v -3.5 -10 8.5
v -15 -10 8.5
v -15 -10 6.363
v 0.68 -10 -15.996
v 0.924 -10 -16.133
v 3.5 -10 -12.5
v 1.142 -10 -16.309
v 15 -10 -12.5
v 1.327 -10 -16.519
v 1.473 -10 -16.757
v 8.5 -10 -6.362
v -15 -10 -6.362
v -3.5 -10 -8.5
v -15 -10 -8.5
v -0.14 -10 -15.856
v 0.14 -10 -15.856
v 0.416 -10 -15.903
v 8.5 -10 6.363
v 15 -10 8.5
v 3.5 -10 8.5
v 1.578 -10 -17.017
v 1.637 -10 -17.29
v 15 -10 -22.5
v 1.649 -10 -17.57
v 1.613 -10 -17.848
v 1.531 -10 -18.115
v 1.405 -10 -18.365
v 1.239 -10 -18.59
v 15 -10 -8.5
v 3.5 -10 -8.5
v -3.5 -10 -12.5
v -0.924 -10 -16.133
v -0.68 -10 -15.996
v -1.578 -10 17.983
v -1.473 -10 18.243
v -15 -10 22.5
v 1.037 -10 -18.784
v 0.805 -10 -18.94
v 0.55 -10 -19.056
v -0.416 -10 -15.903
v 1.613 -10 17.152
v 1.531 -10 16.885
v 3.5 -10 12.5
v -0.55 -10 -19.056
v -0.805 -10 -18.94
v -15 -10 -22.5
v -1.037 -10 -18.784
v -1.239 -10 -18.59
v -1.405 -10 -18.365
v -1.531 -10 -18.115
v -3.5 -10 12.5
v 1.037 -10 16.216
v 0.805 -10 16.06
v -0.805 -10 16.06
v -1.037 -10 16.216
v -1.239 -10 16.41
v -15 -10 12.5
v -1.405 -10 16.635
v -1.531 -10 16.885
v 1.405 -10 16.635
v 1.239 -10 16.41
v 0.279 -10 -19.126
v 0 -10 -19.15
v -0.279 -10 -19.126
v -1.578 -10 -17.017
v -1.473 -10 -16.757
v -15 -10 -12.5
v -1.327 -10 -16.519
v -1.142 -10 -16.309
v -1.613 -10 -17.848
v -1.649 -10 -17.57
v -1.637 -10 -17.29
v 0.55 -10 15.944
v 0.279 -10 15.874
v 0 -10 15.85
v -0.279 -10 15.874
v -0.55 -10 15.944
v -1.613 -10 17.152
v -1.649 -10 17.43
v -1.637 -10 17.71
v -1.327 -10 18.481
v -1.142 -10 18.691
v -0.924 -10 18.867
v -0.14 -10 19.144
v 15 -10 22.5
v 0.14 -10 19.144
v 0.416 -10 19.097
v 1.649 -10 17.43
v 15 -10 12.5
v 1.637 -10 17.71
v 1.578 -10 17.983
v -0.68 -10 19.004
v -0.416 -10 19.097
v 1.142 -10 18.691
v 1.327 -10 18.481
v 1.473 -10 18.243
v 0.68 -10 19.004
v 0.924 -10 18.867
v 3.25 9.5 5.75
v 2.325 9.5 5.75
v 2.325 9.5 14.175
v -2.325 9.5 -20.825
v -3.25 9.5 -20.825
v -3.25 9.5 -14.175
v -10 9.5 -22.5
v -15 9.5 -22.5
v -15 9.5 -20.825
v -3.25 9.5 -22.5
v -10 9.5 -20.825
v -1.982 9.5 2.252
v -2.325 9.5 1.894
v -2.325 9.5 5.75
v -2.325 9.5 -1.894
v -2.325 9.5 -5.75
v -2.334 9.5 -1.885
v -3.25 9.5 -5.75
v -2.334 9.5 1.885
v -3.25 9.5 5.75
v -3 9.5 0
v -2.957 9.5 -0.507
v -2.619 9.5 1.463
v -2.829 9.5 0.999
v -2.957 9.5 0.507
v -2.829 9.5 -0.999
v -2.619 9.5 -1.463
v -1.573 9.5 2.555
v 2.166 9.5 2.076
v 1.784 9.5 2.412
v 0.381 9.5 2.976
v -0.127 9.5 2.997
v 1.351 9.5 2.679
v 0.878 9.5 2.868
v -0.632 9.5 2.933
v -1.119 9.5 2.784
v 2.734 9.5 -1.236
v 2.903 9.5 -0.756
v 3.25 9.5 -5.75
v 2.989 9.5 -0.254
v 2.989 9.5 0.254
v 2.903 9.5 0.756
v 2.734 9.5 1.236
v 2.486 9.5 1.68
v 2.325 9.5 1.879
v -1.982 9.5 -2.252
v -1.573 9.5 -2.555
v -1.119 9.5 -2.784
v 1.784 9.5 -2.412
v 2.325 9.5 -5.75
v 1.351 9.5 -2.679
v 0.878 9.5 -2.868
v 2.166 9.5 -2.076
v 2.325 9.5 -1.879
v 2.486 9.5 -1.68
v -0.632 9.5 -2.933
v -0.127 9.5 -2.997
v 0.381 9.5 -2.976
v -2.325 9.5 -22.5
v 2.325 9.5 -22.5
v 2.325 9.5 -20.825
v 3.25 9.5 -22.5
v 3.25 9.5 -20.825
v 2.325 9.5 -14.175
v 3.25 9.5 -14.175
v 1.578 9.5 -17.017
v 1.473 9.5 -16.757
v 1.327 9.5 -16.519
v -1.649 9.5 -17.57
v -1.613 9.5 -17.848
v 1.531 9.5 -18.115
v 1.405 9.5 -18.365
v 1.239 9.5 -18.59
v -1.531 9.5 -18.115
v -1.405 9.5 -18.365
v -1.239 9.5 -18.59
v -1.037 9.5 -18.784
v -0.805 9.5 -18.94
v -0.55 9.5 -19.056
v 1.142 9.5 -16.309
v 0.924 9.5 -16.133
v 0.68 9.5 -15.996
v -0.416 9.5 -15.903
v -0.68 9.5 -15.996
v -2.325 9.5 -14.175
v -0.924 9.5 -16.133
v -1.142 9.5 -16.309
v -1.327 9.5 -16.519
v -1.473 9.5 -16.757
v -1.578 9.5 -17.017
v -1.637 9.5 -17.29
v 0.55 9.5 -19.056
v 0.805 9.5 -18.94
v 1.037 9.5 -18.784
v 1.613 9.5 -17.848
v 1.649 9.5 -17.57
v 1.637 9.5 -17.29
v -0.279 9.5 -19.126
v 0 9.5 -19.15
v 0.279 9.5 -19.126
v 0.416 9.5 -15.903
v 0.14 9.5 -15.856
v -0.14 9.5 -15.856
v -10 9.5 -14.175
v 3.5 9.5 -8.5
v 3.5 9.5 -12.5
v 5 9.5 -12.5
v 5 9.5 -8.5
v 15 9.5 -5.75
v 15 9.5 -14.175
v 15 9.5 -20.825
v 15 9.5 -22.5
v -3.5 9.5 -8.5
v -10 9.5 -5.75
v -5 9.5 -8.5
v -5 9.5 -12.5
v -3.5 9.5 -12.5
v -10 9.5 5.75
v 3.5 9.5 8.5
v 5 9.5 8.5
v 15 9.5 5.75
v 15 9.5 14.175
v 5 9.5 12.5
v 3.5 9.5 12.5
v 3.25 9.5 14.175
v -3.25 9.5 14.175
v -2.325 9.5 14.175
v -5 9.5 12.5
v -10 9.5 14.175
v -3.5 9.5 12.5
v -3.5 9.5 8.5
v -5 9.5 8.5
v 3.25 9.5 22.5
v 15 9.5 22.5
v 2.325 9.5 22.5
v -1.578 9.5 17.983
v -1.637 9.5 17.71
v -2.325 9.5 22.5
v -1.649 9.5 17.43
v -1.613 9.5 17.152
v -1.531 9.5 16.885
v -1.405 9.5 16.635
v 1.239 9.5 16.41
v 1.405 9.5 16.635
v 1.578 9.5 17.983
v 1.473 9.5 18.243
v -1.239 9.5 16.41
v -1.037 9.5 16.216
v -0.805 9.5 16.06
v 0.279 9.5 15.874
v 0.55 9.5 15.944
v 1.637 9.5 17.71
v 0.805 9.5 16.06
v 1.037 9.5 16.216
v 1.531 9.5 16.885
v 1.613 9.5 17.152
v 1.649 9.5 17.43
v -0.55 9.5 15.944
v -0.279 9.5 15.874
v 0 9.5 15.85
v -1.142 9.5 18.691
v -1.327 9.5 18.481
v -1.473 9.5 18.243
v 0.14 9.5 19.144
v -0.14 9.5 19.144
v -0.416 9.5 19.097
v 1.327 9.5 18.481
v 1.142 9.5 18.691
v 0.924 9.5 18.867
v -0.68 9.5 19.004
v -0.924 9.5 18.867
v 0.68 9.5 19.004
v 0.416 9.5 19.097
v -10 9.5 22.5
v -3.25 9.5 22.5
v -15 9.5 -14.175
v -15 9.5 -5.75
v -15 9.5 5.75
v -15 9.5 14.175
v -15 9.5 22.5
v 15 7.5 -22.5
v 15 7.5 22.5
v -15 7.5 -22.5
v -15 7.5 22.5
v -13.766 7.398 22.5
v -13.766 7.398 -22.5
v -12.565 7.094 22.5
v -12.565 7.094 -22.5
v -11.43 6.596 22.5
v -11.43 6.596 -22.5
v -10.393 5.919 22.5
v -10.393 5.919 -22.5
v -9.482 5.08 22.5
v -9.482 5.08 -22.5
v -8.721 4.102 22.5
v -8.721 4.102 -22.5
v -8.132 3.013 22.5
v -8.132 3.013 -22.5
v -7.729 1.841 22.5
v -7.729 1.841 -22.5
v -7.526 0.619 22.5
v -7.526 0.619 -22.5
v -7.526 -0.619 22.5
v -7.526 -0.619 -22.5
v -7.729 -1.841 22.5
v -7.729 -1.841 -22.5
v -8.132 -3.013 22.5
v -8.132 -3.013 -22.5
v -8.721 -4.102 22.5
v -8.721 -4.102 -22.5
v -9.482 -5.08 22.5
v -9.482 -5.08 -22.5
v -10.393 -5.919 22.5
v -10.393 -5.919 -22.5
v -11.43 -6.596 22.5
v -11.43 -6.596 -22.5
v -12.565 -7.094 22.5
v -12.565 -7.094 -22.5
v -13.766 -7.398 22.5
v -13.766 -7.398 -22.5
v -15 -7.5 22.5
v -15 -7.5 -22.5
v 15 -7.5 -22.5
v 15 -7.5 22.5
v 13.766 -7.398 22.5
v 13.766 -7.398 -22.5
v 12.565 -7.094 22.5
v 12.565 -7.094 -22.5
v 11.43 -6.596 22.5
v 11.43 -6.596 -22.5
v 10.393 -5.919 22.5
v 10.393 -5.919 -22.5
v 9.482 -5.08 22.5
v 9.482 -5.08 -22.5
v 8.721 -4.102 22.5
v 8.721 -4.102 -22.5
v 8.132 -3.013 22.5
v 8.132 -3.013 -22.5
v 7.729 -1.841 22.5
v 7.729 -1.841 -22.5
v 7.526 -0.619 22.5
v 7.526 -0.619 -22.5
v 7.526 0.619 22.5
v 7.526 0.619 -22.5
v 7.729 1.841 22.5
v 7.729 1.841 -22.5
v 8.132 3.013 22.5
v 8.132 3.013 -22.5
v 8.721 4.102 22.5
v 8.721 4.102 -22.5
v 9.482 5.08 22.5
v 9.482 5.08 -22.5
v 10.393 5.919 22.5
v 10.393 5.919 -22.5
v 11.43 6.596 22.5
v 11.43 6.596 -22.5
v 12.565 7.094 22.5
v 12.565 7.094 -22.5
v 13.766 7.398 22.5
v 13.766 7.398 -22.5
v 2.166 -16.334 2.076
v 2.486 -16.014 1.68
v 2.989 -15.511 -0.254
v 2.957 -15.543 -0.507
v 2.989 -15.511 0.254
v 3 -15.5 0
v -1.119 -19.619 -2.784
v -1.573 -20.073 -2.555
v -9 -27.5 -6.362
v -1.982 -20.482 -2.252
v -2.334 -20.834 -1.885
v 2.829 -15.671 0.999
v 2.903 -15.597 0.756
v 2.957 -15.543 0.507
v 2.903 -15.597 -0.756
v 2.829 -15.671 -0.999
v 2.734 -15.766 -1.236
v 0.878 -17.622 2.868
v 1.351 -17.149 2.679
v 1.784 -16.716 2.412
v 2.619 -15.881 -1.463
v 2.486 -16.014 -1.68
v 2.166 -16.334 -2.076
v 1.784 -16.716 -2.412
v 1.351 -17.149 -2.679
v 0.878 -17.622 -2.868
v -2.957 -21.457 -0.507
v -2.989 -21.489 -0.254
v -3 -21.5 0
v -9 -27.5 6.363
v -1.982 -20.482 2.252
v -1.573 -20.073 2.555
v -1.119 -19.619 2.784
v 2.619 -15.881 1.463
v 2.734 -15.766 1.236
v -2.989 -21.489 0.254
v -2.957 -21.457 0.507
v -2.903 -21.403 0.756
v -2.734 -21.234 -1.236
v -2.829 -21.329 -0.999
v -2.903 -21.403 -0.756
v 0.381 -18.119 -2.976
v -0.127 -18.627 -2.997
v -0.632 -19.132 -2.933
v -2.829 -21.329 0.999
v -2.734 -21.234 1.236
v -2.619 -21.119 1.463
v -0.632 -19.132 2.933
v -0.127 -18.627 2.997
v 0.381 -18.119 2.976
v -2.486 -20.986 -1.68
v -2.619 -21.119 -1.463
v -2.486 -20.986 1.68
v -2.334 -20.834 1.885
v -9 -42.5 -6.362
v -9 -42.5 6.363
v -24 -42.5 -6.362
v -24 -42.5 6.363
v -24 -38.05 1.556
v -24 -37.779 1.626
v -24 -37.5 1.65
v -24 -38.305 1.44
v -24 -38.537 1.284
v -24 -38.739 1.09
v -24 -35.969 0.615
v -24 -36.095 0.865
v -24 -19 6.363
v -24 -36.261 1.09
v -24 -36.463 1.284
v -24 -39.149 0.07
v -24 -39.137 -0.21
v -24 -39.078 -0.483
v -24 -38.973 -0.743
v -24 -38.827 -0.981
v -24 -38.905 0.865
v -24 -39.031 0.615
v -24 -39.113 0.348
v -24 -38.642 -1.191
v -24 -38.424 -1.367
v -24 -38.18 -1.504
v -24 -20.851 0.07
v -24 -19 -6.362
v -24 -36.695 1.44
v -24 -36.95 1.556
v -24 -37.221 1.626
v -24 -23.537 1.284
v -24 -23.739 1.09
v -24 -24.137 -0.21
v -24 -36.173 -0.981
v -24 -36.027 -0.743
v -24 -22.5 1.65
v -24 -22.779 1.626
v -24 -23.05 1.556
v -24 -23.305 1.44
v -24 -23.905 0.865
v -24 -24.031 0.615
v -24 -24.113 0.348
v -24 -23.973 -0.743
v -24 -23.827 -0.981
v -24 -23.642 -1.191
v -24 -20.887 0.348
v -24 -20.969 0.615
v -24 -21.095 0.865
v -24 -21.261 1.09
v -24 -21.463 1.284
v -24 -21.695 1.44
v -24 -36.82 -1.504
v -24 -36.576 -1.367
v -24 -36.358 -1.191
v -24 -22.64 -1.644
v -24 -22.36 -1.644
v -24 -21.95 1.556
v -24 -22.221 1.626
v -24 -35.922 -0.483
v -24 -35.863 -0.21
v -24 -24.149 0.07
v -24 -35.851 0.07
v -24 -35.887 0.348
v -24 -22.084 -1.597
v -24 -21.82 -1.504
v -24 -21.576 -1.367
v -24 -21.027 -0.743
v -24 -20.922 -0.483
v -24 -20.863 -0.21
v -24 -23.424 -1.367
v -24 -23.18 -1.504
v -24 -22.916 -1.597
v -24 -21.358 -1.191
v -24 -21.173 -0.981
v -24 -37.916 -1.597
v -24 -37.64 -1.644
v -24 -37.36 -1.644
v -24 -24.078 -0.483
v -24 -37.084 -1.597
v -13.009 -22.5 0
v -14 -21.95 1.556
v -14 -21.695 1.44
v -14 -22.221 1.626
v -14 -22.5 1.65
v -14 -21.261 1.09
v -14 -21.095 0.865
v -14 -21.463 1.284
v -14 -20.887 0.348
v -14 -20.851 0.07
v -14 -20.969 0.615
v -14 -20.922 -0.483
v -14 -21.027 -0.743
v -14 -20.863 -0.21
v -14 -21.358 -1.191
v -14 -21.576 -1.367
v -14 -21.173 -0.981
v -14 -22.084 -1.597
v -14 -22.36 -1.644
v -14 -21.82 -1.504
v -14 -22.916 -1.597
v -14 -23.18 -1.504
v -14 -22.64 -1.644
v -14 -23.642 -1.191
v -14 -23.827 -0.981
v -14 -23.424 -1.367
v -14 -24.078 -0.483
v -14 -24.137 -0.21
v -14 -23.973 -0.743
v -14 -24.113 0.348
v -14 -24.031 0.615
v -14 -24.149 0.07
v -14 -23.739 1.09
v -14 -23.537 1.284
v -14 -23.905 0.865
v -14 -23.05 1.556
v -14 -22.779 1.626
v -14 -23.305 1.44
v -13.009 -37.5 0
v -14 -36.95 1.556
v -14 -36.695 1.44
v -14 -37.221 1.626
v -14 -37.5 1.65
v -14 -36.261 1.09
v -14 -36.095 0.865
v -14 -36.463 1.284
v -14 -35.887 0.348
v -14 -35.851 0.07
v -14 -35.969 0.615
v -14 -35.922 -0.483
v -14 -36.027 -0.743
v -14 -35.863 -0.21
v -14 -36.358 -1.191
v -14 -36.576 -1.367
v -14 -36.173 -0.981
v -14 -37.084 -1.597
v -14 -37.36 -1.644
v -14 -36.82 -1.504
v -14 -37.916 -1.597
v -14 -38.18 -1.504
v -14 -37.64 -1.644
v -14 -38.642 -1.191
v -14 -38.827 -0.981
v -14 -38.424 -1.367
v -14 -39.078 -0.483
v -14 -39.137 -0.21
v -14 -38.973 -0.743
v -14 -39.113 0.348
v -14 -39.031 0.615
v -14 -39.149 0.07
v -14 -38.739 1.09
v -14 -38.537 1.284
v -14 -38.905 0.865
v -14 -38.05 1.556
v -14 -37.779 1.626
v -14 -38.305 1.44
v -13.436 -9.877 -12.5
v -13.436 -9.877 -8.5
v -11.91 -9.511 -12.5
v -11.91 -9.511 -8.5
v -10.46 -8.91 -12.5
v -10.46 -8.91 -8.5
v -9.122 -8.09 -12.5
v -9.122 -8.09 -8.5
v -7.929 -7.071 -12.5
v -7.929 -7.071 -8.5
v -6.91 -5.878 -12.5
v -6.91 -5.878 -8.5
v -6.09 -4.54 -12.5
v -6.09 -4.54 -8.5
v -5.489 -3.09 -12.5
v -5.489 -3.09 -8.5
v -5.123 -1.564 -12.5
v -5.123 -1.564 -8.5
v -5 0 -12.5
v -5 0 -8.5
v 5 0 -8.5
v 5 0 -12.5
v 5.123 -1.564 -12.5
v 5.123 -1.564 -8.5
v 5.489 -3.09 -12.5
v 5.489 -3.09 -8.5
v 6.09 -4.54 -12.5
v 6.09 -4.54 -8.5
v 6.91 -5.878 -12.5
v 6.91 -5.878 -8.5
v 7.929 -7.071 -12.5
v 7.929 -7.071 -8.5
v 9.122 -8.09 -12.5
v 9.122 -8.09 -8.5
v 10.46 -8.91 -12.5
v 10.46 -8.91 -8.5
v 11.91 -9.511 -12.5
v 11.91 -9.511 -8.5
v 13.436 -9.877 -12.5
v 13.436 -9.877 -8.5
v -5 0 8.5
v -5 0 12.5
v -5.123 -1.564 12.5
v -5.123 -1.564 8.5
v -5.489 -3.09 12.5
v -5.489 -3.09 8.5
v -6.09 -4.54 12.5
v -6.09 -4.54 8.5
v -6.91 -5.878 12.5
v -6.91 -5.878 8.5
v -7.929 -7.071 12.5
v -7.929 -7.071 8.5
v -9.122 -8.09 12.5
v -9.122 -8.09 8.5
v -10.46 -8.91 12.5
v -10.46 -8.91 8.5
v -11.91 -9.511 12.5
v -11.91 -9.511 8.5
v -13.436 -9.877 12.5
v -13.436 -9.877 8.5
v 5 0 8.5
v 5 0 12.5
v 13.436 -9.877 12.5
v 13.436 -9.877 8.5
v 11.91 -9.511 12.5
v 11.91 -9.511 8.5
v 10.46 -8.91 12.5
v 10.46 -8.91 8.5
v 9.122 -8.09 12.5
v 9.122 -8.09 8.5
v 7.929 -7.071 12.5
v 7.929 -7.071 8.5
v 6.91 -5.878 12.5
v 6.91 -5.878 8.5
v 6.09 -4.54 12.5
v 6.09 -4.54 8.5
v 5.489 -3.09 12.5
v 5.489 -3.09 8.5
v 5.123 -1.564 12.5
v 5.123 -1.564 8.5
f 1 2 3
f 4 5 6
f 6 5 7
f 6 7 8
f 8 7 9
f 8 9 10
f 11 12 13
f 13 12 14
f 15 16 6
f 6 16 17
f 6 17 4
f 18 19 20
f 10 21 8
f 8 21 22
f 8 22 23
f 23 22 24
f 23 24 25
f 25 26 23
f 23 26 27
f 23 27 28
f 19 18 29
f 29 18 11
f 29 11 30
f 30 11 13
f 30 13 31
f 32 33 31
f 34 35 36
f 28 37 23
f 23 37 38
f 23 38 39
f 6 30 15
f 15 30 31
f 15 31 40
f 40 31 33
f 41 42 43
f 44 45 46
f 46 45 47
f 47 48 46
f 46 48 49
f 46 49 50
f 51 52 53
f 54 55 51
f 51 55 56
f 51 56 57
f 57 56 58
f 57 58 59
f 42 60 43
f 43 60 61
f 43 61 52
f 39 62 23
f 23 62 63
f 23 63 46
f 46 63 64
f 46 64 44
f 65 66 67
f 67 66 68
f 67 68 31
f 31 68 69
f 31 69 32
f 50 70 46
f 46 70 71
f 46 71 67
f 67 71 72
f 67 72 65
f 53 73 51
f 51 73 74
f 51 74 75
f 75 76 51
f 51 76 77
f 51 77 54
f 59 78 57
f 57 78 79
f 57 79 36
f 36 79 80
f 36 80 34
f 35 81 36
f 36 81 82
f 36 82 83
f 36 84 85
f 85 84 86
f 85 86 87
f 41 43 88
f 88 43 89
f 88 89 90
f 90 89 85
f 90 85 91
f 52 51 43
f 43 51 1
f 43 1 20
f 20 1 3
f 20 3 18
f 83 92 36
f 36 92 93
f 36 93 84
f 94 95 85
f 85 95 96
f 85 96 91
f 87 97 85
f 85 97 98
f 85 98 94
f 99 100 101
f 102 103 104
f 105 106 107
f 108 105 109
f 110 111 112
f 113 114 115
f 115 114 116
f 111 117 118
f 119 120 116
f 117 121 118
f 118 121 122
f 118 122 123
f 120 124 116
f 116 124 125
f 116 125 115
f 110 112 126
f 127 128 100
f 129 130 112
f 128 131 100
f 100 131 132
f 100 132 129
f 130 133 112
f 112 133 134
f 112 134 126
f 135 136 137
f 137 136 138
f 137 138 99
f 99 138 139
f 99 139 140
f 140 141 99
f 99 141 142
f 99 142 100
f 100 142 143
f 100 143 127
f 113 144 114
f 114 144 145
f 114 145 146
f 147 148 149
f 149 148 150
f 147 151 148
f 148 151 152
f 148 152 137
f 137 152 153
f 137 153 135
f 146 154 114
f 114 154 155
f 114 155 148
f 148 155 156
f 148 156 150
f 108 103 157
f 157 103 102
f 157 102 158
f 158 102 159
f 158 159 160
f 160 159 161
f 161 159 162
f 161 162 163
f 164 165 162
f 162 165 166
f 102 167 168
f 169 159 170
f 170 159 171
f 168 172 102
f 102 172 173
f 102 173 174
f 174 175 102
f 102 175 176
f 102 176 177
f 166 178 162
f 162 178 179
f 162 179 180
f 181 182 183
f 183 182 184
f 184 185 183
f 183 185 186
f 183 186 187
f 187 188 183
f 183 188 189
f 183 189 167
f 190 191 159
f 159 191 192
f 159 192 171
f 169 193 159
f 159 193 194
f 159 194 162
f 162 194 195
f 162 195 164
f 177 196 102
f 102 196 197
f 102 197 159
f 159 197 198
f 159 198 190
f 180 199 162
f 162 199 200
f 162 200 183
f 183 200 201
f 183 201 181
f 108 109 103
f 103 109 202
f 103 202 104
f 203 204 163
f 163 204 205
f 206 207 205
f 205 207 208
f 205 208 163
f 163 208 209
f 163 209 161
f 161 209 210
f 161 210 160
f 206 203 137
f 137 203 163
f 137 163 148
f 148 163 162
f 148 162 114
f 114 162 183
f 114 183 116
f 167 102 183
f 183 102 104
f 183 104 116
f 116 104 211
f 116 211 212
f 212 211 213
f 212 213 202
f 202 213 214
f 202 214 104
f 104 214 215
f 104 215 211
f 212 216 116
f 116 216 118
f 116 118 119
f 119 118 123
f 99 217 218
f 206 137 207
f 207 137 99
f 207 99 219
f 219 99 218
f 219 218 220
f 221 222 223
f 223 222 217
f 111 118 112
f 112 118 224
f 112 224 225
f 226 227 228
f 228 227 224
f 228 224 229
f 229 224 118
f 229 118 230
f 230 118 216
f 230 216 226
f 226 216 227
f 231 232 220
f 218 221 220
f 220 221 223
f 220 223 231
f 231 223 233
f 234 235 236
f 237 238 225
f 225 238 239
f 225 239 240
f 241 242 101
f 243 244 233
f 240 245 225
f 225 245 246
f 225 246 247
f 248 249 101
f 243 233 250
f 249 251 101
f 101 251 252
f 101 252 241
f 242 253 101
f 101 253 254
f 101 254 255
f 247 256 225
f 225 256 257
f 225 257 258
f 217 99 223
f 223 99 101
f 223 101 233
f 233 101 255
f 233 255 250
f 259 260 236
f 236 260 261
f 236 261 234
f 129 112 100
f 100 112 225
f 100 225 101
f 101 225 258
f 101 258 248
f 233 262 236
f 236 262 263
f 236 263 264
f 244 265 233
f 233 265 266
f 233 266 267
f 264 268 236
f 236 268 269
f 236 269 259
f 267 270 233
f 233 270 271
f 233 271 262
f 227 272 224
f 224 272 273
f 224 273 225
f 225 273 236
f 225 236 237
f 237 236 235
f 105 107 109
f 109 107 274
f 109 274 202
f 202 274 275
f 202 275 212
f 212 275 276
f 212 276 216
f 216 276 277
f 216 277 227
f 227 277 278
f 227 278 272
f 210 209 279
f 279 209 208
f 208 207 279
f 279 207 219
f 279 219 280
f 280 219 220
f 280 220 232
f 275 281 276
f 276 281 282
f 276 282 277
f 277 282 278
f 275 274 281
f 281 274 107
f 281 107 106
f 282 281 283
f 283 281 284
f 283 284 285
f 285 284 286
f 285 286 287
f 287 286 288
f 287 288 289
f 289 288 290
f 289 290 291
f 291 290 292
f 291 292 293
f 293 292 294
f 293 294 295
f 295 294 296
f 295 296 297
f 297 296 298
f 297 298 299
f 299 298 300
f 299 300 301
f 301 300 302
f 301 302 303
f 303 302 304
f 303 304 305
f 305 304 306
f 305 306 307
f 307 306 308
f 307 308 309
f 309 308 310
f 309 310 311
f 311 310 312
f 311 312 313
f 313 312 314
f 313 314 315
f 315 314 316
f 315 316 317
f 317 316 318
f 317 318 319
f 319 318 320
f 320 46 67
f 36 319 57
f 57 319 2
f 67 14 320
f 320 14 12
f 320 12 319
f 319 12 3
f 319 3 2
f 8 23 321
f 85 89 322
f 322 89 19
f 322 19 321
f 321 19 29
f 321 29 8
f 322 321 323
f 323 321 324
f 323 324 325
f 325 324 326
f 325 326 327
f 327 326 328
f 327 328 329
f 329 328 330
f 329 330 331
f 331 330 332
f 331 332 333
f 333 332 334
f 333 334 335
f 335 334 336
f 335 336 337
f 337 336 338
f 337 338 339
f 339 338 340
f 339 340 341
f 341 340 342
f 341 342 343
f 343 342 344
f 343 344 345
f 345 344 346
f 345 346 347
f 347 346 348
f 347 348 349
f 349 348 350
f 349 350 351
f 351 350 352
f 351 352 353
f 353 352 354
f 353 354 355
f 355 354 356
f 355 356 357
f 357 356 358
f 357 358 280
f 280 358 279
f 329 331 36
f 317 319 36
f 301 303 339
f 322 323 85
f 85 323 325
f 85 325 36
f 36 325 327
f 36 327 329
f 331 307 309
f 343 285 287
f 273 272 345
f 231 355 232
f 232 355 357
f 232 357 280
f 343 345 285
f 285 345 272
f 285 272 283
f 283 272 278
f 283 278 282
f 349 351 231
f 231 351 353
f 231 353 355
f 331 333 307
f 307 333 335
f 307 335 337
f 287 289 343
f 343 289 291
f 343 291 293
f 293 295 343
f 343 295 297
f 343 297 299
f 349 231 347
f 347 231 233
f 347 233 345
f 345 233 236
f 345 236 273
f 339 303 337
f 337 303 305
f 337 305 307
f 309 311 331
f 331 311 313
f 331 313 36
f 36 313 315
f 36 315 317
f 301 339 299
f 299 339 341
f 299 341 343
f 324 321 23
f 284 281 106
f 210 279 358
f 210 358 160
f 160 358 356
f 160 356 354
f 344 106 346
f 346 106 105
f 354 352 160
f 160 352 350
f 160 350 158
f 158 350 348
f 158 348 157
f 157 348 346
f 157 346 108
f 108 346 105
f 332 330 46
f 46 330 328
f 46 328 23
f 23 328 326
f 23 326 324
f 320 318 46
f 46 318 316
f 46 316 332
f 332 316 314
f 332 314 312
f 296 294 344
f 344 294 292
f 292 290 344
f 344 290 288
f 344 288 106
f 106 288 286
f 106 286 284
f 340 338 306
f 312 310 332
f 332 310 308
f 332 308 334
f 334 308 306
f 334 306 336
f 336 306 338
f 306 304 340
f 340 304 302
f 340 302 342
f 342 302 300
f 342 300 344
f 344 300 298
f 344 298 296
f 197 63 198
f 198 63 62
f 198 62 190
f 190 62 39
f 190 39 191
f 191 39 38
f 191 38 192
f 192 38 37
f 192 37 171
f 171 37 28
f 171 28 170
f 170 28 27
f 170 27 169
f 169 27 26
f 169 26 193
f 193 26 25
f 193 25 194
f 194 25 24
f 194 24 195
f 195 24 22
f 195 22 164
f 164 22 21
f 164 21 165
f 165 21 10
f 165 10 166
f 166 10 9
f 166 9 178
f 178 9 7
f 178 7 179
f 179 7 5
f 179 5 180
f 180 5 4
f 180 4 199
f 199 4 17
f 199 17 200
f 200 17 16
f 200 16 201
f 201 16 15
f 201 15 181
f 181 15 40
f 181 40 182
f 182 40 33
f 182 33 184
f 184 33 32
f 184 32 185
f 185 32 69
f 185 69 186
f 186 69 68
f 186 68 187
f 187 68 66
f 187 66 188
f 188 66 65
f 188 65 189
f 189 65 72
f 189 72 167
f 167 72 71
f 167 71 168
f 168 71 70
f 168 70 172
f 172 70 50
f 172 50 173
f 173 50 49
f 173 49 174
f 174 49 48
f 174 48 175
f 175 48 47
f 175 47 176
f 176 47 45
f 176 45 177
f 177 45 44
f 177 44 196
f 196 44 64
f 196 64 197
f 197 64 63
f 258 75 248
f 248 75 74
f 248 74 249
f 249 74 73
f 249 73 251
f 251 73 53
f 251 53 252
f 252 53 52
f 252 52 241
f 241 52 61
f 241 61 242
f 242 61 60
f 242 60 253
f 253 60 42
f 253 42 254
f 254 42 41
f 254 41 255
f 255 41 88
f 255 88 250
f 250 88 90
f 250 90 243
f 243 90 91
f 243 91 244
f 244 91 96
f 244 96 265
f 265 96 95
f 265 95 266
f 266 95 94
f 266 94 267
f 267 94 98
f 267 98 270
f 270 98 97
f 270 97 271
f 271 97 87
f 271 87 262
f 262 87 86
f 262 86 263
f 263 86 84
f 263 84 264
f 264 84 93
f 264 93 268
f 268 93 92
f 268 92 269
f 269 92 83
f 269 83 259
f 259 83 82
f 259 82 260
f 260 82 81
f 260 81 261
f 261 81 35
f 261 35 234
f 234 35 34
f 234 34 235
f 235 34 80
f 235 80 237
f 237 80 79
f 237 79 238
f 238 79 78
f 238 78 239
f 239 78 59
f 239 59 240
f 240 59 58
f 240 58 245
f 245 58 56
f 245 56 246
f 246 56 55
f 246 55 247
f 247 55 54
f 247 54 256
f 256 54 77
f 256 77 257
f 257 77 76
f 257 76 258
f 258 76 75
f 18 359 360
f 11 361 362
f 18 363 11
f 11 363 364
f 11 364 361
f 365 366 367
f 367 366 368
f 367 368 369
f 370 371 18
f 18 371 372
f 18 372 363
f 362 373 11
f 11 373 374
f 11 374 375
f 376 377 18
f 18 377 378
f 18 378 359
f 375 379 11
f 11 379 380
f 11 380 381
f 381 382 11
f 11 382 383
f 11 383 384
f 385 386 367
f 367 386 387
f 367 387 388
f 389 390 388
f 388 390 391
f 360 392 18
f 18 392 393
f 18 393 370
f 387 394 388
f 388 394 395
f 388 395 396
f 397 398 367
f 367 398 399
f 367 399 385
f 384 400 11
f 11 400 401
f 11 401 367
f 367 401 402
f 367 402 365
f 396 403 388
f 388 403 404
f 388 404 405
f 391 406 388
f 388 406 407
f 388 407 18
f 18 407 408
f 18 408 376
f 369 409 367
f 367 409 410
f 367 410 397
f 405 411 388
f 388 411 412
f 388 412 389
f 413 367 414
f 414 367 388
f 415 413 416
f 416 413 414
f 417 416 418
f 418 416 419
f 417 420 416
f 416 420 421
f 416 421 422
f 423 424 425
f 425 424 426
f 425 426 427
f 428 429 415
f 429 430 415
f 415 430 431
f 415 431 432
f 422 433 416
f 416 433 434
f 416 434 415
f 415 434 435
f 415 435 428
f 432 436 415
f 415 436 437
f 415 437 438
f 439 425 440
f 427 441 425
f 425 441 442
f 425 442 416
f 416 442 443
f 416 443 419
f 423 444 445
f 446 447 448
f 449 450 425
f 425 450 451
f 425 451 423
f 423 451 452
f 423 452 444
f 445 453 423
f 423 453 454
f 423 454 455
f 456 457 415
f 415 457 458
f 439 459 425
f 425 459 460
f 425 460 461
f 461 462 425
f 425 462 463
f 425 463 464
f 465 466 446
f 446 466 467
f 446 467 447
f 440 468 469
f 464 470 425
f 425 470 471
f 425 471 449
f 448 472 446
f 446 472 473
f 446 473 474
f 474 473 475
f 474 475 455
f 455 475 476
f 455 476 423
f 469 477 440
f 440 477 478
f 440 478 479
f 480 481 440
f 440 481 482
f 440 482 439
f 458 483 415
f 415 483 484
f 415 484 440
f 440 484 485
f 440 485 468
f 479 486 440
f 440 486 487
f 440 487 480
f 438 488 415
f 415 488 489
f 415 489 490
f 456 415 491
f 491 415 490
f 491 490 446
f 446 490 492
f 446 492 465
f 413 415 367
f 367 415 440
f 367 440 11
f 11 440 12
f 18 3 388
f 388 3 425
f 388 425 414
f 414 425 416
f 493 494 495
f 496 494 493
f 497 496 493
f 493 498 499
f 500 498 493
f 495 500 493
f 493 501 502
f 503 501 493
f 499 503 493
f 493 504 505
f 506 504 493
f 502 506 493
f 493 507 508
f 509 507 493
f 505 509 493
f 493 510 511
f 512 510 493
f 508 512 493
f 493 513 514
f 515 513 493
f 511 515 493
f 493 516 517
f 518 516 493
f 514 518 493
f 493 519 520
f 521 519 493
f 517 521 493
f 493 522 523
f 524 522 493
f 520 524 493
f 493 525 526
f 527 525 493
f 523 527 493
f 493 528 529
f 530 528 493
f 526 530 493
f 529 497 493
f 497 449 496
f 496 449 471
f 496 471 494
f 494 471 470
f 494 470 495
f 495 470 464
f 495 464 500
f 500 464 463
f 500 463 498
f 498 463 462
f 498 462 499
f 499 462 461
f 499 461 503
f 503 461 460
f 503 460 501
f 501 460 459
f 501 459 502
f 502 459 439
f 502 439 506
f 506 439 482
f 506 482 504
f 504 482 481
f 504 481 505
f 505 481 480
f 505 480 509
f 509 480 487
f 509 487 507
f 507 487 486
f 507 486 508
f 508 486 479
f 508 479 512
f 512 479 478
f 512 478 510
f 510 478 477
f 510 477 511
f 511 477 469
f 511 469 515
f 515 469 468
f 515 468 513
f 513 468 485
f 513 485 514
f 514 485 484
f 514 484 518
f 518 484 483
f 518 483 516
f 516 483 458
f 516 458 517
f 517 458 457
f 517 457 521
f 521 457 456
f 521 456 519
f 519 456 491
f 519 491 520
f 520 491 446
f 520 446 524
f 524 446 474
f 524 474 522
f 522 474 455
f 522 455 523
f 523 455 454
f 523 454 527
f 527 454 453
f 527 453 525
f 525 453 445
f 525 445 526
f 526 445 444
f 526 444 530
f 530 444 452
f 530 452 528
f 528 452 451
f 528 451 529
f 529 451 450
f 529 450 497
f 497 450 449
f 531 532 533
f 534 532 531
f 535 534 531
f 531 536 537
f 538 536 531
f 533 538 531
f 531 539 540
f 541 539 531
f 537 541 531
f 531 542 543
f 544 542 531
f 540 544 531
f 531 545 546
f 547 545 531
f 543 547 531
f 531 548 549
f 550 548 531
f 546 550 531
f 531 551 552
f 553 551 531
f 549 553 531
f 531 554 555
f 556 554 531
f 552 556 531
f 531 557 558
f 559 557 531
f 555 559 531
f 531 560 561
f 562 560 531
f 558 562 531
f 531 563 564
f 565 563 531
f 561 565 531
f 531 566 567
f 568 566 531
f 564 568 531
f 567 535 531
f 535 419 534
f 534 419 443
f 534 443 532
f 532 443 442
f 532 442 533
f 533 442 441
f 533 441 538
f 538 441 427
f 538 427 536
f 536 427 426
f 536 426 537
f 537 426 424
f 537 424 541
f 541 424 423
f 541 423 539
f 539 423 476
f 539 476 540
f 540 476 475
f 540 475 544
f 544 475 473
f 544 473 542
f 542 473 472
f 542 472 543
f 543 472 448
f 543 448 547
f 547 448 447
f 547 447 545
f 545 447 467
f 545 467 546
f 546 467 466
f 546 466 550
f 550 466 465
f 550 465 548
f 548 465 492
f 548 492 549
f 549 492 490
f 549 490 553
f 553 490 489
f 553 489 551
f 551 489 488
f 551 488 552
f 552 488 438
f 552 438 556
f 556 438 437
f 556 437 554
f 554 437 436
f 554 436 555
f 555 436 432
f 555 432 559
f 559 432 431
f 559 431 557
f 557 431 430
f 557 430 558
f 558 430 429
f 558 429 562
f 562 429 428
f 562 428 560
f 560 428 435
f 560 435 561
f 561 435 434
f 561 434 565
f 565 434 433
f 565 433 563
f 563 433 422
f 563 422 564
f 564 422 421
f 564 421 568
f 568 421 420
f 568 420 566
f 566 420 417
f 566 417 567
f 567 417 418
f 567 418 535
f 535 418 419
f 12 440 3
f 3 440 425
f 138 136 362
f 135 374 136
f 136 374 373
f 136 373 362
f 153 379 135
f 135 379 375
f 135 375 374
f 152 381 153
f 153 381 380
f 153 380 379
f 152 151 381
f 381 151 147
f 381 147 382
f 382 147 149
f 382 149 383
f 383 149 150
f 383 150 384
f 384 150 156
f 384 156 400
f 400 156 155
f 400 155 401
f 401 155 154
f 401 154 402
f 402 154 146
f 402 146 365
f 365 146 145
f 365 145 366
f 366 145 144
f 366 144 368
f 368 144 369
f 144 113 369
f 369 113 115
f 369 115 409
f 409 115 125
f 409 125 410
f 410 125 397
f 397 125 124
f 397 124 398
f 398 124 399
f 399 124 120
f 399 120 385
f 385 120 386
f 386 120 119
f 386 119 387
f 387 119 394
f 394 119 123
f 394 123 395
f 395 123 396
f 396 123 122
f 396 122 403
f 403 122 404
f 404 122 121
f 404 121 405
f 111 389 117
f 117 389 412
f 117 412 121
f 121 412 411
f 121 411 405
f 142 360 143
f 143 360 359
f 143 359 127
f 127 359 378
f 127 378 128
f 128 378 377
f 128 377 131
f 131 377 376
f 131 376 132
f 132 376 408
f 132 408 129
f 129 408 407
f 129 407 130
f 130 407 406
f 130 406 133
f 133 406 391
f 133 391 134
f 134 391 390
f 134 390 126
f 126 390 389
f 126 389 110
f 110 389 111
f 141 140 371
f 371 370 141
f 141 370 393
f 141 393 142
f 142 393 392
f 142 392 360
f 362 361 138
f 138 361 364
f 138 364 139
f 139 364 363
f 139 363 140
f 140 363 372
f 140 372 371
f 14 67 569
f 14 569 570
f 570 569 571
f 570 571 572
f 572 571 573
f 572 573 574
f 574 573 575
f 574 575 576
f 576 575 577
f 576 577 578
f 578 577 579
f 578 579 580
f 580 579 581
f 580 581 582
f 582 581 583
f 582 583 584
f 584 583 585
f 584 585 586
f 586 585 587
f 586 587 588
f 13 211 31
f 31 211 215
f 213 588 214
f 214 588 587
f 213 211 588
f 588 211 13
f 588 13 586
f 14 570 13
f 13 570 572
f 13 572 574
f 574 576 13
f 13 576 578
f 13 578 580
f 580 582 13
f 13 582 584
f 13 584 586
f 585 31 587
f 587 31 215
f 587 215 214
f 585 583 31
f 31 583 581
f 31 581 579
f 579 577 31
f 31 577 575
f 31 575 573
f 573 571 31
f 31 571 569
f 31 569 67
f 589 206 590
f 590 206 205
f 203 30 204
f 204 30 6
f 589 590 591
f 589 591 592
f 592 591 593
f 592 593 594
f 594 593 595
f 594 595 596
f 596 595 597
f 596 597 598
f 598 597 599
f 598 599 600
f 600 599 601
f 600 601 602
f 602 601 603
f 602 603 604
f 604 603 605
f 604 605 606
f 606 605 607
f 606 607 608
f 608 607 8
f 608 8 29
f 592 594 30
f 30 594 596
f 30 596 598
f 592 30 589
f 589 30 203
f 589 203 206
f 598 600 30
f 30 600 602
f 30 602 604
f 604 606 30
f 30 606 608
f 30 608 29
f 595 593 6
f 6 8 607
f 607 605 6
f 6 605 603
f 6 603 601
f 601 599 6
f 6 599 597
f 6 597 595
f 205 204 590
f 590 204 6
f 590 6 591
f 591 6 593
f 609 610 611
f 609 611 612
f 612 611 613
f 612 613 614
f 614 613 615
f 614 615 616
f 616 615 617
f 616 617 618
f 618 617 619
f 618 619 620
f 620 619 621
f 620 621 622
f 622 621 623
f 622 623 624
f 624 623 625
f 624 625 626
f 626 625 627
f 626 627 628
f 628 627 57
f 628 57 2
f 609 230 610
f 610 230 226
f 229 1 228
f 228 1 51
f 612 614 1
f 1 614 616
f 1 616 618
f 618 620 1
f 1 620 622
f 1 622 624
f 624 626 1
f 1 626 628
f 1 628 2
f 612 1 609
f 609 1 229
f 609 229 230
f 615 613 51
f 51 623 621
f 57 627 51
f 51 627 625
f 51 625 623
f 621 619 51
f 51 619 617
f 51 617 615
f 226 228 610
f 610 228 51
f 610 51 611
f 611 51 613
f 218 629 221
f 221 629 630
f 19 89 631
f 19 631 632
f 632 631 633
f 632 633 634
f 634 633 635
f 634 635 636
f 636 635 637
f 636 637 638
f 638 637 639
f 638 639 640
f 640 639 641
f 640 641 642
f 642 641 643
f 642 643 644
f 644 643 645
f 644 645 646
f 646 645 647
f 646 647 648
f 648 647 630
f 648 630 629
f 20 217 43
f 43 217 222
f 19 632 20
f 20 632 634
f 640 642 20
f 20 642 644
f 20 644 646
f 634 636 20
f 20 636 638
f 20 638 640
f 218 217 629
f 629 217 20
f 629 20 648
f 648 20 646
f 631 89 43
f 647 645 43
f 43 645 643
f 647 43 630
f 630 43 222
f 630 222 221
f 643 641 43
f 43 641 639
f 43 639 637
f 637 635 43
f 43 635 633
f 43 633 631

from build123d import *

# Parameters (mm, degrees)
BOSS_EXTRUDE1_DEPTH       = 22.5
M4X0_7_TAPPED_HOLE2_D     = 3.3
BOSS_EXTRUDE3_DEPTH       = 6.3625
M4X0_7_TAPPED_HOLE1_D     = 3.3
M4X0_7_TAPPED_HOLE1_DEPTH = 10
M4X0_7_TAPPED_HOLE1_TIP   = 0.991420021
CUT_EXTRUDE2_DEPTH        = 85
SKETCH2_R                 = 3
CUT_EXTRUDE1_DEPTH        = 50
CUT_EXTRUDE3_START        = -10
CUT_EXTRUDE3_DEPTH        = 4


with BuildPart() as part:
    # Sketch1 → Boss-Extrude1 (new body, symmetric)
    with BuildSketch(Plane.XY):
        with BuildLine():
            Line((-15, 7.5), (-15, 9.5))
            Line((-15, 9.5), (15, 9.5))
            Line((15, 9.5), (15, 7.5))
            ThreePointArc((15, 7.5), (7.5, 0), (15, -7.5))
            Line((15, -7.5), (15, -10))
            Line((15, -10), (-15, -10))
            Line((-15, -10), (-15, -7.5))
            ThreePointArc((-15, -7.5), (-7.5, 0), (-15, 7.5))
        make_face()
    extrude(amount=BOSS_EXTRUDE1_DEPTH, both=True)

    # M4x0.7 Tapped Hole2 (through all)
    with Locations(Plane(origin=(0, -10, 0), x_dir=(-1, 0, 0), z_dir=(0, -1, 0))):
        with Locations((0, -17.5), (0, 17.5)):
            Hole(M4X0_7_TAPPED_HOLE2_D / 2)

    # Sketch7 → Boss-Extrude3 (add, symmetric)
    with BuildSketch(Plane.XY):
        Polygon((-15, -7.5), (-24, -7.5), (-24, -42.5), (-9, -42.5), (-9, -27.5), (8.5, -10), (-15, -10), align=None)
    extrude(amount=BOSS_EXTRUDE3_DEPTH, both=True)

    # M4x0.7 Tapped Hole1
    with Locations(Plane(origin=(-24, 0, 0), x_dir=(0, 0, -1), z_dir=(-1, 0, 0))):
        with Locations((0, 37.5), (0, 22.5)):
            Hole(M4X0_7_TAPPED_HOLE1_D / 2, depth=M4X0_7_TAPPED_HOLE1_DEPTH)
            with Locations((0, 0, -(M4X0_7_TAPPED_HOLE1_DEPTH + M4X0_7_TAPPED_HOLE1_TIP / 2))):  # 118° drill point
                Cone(0, M4X0_7_TAPPED_HOLE1_D / 2, M4X0_7_TAPPED_HOLE1_TIP, mode=Mode.SUBTRACT)

    # Sketch10 → Cut-Extrude2 (cut)
    with BuildSketch(Plane(origin=(0, 0, -6.3625), x_dir=(-1, 0, 0), z_dir=(0, 0, -1))):
        Polygon((15, -10), (24, -19), (24, -7.5), (15, -7.5), align=None)
    extrude(amount=-CUT_EXTRUDE2_DEPTH, mode=Mode.SUBTRACT)

    # Sketch2 → Cut-Extrude1 (cut)
    with BuildSketch(Plane(origin=(0, 9.5, 0), x_dir=(1, 0, 0), z_dir=(0, 1, 0))):
        Circle(SKETCH2_R)
    extrude(amount=-CUT_EXTRUDE1_DEPTH, mode=Mode.SUBTRACT)

    # Sketch11 → Cut-Extrude3 (cut)
    with BuildSketch(Plane(origin=(0, 0, -22.5), x_dir=(-1, 0, 0), z_dir=(0, 0, -1)).offset(CUT_EXTRUDE3_START)):
        with BuildLine():
            Line((-5, 9.5), (-5, 0))
            ThreePointArc((-5, 0), (-7.928932188, -7.071067812), (-15, -10))
            Line((-15, -10), (-3.5, -10))
            Line((-3.5, -10), (-3.5, 9.5))
            Line((-3.5, 9.5), (-5, 9.5))
        make_face()
        with BuildLine():
            Line((3.5, 9.5), (5, 9.5))
            Line((5, 9.5), (5, 0))
            ThreePointArc((5, 0), (7.928932188, -7.071067812), (15, -10))
            Line((15, -10), (3.5, -10))
            Line((3.5, -10), (3.5, 9.5))
        make_face()
    cut_extrude3 = extrude(amount=-CUT_EXTRUDE3_DEPTH, mode=Mode.SUBTRACT)

    # Mirror1: Cut-Extrude3 across plane
    add(cut_extrude3.mirror(Plane.XY), mode=Mode.SUBTRACT)


solid = part.part
